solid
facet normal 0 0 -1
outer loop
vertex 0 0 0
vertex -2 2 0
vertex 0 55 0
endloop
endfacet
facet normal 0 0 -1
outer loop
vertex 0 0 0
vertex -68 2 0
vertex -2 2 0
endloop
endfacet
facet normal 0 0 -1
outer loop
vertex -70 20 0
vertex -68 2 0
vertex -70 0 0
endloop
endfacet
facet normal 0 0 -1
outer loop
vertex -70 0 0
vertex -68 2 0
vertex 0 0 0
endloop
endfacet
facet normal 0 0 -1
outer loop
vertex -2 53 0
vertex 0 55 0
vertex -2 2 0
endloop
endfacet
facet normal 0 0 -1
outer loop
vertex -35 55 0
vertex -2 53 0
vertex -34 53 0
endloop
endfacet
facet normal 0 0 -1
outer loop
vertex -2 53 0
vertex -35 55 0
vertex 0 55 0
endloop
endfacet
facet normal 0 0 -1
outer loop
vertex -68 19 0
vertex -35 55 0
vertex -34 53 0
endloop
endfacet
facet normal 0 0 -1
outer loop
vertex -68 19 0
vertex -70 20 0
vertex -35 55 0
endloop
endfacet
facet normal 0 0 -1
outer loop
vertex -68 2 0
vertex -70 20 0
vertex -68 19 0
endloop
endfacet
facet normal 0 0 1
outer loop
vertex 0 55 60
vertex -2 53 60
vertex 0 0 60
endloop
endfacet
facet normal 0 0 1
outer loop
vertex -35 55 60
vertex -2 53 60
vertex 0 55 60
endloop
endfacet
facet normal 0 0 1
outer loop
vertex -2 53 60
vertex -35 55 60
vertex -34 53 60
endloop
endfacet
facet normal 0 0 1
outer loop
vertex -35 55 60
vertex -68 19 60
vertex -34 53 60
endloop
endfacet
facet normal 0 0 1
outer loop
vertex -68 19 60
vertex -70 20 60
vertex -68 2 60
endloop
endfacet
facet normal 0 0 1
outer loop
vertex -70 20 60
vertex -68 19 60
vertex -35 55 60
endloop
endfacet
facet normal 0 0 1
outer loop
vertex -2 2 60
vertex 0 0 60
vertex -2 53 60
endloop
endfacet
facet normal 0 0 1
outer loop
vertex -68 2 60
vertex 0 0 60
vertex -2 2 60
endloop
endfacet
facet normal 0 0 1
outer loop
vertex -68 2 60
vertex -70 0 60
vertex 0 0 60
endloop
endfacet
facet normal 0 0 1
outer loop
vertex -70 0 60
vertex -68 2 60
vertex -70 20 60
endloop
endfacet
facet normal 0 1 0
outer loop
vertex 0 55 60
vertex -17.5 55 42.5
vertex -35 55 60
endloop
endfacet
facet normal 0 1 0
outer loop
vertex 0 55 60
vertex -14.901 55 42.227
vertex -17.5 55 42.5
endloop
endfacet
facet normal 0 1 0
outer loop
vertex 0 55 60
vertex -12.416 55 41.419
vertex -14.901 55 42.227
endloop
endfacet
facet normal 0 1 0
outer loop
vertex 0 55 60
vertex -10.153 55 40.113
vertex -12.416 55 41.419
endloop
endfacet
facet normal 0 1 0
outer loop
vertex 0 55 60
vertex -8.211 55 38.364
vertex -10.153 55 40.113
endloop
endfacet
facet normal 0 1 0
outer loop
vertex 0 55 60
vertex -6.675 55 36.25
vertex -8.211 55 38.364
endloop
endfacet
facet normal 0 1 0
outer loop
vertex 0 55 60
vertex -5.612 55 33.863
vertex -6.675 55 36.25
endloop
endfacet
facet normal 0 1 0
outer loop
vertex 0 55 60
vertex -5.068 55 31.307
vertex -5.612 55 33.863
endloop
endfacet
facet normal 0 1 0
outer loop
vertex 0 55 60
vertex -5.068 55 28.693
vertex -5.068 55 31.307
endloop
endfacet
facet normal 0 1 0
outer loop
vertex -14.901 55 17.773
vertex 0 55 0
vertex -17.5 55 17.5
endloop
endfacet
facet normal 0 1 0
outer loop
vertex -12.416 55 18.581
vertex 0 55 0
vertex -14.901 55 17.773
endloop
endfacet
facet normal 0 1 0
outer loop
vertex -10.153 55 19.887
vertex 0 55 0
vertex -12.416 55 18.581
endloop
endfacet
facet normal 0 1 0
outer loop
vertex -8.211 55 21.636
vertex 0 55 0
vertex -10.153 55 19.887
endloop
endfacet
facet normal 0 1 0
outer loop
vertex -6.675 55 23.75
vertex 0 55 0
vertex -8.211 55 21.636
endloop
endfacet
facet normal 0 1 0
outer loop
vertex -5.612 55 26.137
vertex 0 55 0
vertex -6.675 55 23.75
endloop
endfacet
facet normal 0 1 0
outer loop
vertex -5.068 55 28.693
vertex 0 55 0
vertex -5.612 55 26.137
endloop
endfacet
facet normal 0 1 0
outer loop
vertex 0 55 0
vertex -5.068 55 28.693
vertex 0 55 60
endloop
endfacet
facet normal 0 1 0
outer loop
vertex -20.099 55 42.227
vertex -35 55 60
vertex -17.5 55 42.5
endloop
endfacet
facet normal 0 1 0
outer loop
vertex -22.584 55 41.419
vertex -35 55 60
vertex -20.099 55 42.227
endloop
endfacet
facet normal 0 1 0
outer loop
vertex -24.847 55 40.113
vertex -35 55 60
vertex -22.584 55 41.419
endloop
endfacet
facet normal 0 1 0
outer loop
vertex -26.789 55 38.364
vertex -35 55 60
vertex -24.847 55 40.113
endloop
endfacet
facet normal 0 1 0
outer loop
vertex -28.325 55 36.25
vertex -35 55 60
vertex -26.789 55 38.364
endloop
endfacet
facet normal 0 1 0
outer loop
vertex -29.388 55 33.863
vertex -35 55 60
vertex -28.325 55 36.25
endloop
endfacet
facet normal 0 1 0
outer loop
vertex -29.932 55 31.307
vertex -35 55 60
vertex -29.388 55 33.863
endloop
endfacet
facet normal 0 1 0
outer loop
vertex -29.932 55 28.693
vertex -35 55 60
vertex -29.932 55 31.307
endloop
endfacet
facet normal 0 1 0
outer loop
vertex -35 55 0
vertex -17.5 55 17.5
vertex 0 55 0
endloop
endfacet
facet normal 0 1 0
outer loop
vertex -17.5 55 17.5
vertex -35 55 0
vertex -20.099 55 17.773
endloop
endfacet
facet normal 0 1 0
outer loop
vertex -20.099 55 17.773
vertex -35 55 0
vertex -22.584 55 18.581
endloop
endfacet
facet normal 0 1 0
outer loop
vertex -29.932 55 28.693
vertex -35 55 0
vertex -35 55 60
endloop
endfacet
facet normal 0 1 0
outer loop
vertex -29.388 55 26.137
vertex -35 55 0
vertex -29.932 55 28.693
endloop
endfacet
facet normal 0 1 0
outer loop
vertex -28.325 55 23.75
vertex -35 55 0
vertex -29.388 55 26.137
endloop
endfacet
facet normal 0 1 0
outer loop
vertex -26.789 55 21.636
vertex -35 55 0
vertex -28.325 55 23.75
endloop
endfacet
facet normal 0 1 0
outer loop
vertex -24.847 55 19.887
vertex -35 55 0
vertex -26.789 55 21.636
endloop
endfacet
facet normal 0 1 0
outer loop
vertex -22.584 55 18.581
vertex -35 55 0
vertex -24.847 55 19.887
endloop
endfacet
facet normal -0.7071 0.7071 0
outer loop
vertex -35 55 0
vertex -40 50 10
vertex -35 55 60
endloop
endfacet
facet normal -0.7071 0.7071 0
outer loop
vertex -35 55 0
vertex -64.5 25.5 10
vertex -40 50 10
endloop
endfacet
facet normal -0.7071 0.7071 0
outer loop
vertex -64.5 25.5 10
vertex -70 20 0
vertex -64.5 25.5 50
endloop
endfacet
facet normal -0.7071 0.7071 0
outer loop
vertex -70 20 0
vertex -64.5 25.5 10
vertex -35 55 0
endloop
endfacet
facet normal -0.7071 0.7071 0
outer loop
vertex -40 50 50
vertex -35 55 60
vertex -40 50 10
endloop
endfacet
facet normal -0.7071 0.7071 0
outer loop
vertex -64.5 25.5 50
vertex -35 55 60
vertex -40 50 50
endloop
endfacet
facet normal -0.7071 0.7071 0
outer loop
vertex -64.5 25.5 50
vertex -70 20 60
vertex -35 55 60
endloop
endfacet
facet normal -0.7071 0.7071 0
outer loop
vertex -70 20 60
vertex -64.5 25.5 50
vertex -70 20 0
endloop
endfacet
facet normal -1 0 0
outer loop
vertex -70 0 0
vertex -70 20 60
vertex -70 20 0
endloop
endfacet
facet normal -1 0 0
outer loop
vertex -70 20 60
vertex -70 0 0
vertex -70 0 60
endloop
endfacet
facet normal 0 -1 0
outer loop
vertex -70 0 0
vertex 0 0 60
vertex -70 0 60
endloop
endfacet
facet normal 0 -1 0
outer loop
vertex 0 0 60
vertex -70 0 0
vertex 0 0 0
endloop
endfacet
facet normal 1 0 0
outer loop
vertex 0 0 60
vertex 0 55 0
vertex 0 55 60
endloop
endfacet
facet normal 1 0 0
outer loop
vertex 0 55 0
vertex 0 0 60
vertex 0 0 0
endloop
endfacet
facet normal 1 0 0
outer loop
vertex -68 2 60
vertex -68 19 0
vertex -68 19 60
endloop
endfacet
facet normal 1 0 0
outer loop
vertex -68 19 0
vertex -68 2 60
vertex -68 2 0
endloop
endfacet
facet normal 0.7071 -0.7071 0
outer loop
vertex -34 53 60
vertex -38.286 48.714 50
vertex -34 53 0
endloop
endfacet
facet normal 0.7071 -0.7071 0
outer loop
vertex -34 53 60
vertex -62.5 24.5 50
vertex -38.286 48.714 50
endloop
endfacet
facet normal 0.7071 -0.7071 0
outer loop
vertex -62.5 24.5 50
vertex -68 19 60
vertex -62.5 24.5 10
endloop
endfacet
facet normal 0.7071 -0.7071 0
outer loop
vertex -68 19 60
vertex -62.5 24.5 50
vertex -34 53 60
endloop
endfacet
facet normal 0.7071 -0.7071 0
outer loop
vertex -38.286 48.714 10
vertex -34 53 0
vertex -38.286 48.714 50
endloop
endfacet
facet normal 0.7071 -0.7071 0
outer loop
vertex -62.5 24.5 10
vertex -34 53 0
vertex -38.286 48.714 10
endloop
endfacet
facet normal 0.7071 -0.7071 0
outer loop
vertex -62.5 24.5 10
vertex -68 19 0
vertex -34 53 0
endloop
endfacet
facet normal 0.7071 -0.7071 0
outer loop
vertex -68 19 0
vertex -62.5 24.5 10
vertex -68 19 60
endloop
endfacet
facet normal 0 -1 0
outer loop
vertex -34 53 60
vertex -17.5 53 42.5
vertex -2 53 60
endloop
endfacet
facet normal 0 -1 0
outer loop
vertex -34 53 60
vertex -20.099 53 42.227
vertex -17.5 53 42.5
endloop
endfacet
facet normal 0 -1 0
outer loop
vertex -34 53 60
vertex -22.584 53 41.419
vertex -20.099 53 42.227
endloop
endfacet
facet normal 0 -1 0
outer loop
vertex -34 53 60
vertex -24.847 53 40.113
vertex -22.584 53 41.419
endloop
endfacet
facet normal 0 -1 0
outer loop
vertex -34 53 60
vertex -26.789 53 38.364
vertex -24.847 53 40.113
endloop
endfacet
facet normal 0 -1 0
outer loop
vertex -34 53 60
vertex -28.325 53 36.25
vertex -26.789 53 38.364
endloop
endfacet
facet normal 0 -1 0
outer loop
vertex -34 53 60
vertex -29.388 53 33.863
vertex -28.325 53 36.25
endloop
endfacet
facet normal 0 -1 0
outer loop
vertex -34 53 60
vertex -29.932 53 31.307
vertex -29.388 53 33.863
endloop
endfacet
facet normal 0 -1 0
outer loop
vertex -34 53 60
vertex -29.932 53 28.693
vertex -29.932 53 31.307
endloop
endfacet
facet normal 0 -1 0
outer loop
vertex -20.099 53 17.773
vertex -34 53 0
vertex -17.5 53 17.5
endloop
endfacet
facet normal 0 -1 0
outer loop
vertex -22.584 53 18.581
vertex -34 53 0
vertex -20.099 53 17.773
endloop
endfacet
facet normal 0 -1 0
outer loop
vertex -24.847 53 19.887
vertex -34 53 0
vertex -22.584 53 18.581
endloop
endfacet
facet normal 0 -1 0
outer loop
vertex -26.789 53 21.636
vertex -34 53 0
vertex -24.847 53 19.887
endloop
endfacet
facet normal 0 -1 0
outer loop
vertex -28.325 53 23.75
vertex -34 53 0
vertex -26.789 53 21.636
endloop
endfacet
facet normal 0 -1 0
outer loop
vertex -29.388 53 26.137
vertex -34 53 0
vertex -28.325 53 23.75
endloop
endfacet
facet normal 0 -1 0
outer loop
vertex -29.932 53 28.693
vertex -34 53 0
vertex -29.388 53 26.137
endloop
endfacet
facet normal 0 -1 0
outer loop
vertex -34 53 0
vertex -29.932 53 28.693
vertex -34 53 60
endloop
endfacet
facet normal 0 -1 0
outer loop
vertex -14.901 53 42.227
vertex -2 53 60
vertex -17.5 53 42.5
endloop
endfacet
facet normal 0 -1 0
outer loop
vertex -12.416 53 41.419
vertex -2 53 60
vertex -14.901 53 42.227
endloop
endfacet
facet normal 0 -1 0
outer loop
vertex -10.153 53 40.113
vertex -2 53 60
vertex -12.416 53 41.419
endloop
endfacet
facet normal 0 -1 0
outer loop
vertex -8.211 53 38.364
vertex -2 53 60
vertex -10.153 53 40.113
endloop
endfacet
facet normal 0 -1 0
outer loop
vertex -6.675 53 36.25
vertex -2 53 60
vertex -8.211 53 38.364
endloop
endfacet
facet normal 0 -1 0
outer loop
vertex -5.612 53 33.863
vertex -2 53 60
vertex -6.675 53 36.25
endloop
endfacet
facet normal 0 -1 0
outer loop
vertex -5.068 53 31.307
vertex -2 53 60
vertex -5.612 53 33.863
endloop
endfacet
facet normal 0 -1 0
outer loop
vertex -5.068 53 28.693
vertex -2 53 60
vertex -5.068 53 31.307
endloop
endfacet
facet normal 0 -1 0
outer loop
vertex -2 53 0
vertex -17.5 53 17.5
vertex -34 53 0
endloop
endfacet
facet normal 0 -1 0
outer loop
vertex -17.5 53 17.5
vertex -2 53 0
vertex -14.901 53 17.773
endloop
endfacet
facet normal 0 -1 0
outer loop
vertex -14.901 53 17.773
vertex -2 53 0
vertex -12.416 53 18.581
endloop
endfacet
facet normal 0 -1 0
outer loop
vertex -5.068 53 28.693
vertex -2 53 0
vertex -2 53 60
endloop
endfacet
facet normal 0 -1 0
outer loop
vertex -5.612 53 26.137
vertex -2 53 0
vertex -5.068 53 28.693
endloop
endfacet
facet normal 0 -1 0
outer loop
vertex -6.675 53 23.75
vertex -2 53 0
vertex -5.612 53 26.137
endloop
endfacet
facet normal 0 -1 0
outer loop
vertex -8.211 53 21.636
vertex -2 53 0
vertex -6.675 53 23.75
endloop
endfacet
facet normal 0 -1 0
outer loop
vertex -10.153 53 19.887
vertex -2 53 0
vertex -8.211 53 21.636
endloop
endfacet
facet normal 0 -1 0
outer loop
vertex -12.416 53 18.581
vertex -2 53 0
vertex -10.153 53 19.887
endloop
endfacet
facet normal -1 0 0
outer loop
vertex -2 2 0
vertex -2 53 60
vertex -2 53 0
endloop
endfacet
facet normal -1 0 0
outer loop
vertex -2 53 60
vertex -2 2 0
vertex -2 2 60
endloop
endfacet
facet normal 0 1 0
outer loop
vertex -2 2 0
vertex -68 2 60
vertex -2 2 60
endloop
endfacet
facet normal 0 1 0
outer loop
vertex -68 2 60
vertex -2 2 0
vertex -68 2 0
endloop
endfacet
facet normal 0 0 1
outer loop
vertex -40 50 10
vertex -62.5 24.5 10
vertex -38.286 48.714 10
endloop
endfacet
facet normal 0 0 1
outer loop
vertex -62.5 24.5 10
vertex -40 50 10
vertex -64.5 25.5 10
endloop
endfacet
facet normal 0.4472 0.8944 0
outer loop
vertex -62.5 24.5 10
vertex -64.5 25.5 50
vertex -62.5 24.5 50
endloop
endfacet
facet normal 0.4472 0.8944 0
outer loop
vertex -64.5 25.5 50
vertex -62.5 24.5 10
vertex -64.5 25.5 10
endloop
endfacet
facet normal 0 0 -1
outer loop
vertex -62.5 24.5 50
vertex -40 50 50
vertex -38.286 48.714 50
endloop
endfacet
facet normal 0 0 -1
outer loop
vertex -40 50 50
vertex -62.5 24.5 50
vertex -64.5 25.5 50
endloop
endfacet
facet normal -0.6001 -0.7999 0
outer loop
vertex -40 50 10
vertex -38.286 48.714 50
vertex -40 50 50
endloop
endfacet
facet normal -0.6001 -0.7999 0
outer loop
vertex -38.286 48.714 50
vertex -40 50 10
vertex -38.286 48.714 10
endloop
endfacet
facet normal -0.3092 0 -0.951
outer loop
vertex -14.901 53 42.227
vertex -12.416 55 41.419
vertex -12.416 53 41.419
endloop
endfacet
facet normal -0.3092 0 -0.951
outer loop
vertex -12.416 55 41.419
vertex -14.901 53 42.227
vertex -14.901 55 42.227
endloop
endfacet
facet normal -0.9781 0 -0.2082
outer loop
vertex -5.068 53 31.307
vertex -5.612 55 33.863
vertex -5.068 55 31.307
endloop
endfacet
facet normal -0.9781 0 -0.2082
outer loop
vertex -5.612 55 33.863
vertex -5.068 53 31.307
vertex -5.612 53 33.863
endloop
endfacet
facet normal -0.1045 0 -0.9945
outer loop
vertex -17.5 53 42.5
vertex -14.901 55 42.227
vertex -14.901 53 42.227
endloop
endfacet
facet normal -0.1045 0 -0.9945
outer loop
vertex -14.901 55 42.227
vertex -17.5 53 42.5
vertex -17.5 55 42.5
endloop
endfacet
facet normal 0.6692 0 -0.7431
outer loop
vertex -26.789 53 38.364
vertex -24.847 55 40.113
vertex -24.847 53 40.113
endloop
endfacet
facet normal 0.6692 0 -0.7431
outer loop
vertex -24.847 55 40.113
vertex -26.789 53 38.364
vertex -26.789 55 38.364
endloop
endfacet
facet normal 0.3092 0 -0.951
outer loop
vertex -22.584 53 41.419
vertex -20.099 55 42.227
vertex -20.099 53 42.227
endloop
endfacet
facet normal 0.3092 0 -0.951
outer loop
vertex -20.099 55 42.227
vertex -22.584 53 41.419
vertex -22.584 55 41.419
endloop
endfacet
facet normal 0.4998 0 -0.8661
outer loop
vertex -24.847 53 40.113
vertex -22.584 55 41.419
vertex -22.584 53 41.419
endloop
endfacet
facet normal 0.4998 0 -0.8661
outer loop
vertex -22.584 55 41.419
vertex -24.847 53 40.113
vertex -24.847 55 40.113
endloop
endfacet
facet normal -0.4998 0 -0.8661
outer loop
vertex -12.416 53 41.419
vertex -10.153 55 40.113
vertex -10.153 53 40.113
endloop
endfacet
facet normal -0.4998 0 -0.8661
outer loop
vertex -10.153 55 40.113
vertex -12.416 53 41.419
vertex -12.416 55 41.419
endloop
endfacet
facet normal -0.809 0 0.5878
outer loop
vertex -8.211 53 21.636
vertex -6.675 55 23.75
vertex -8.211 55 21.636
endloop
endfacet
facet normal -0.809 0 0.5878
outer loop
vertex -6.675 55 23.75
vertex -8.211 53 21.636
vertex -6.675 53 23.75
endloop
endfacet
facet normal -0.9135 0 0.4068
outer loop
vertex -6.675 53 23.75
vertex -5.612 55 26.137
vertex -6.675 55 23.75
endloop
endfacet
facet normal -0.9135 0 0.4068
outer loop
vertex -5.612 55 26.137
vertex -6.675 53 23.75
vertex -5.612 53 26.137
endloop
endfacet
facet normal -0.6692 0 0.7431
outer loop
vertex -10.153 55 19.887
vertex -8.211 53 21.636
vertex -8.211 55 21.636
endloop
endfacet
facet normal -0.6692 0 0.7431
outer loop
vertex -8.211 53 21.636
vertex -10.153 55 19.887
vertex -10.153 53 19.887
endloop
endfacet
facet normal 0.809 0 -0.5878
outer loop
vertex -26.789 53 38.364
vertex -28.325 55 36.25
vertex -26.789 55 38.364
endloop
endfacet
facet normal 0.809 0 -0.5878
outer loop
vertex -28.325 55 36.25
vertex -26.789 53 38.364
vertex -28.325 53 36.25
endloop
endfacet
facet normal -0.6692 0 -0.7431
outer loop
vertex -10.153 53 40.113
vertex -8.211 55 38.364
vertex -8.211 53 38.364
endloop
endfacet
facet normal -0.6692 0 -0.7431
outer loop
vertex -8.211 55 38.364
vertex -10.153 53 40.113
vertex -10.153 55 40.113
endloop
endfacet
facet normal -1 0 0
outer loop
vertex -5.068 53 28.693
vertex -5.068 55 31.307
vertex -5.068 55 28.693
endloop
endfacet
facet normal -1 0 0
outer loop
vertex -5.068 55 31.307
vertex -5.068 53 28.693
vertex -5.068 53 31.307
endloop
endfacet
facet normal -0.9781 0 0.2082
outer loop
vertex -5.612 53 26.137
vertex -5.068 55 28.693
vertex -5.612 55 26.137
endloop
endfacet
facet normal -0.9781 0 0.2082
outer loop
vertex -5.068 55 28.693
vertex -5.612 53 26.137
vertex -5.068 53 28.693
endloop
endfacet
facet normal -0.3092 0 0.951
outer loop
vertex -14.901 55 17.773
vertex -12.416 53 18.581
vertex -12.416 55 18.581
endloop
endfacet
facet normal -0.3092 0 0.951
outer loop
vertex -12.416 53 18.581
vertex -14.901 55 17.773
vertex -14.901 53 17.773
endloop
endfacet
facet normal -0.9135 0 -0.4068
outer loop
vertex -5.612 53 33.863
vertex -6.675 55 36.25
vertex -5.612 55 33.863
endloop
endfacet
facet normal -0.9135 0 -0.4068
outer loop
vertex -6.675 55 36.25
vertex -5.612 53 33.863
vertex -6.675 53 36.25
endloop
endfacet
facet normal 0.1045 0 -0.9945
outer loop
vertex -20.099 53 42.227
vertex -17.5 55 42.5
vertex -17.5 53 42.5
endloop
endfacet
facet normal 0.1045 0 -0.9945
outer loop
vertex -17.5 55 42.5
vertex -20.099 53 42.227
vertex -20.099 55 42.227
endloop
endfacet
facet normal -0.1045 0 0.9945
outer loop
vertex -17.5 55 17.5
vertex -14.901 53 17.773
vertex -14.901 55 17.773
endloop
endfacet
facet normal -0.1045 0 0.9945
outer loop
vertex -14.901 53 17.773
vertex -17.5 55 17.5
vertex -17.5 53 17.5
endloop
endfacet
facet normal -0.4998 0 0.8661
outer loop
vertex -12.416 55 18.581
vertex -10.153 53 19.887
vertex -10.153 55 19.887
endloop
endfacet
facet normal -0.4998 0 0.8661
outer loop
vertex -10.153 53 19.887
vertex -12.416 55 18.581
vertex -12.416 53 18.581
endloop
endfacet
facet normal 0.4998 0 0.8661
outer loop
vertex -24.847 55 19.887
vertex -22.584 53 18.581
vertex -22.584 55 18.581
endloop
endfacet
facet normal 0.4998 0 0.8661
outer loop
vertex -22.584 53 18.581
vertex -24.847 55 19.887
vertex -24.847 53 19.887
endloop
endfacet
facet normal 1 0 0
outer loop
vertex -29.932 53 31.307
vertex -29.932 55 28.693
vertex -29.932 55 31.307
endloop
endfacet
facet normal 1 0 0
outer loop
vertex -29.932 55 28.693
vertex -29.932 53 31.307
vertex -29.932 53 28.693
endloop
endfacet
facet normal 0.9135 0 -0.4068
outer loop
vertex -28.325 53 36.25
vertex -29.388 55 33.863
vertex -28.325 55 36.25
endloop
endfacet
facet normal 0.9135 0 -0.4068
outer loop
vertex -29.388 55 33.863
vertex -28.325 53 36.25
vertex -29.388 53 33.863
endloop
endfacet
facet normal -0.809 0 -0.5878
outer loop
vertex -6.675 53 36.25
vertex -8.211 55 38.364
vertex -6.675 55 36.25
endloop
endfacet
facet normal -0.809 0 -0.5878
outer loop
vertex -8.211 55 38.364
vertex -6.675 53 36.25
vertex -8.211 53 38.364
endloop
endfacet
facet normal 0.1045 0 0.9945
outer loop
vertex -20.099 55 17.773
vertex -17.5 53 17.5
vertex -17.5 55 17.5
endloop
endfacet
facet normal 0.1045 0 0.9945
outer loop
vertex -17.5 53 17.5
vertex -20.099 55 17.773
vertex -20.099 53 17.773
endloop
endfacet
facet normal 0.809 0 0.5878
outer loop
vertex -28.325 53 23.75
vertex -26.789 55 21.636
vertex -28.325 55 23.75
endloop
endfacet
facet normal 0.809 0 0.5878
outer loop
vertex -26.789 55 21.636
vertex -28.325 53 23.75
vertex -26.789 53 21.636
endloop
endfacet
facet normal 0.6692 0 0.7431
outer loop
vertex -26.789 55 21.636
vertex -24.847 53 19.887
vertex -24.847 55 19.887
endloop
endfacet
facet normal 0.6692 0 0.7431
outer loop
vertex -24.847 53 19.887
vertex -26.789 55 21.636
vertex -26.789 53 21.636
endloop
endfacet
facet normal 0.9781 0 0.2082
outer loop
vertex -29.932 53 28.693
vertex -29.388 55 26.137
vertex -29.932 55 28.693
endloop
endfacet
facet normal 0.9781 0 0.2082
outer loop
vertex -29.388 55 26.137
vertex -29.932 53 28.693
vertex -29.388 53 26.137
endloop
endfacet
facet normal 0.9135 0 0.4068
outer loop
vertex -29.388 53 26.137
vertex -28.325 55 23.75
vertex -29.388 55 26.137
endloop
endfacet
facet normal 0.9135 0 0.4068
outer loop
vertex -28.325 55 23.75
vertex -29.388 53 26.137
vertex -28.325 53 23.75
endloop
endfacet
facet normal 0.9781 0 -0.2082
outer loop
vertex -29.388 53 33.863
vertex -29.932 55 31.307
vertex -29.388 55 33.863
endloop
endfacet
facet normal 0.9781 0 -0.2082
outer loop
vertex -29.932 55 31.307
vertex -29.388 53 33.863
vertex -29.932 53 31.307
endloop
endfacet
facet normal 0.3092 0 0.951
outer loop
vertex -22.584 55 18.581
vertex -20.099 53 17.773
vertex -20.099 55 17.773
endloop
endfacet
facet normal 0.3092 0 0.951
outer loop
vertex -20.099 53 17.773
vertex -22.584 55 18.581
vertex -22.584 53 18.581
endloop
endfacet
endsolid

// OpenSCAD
difference(){
  difference(){
    //base
    linear_extrude(height = 60) 
      polygon( [
        [0,0],  [-70,0], [-70,20], [-35,55], [0,55], 
        [-2,2], [-68,2], [-68,19], [-34,53], [-2,53]
      ] ,[ [0,1,2,3,4],[5,6,7,8,9] ]  );

    //screen hole
    translate ([0,0,10])
      linear_extrude(height = 40) 
        polygon( [  
          [-62.5,24.5], [-64.5,25.5], [-40,50], [-38,48.5] 
        ] );
  };

  //joystick hole
  translate ([-35/2,50,30])
    rotate([0,-90,-90])
      linear_extrude(height = 10) 
        circle(d = 25);
}
